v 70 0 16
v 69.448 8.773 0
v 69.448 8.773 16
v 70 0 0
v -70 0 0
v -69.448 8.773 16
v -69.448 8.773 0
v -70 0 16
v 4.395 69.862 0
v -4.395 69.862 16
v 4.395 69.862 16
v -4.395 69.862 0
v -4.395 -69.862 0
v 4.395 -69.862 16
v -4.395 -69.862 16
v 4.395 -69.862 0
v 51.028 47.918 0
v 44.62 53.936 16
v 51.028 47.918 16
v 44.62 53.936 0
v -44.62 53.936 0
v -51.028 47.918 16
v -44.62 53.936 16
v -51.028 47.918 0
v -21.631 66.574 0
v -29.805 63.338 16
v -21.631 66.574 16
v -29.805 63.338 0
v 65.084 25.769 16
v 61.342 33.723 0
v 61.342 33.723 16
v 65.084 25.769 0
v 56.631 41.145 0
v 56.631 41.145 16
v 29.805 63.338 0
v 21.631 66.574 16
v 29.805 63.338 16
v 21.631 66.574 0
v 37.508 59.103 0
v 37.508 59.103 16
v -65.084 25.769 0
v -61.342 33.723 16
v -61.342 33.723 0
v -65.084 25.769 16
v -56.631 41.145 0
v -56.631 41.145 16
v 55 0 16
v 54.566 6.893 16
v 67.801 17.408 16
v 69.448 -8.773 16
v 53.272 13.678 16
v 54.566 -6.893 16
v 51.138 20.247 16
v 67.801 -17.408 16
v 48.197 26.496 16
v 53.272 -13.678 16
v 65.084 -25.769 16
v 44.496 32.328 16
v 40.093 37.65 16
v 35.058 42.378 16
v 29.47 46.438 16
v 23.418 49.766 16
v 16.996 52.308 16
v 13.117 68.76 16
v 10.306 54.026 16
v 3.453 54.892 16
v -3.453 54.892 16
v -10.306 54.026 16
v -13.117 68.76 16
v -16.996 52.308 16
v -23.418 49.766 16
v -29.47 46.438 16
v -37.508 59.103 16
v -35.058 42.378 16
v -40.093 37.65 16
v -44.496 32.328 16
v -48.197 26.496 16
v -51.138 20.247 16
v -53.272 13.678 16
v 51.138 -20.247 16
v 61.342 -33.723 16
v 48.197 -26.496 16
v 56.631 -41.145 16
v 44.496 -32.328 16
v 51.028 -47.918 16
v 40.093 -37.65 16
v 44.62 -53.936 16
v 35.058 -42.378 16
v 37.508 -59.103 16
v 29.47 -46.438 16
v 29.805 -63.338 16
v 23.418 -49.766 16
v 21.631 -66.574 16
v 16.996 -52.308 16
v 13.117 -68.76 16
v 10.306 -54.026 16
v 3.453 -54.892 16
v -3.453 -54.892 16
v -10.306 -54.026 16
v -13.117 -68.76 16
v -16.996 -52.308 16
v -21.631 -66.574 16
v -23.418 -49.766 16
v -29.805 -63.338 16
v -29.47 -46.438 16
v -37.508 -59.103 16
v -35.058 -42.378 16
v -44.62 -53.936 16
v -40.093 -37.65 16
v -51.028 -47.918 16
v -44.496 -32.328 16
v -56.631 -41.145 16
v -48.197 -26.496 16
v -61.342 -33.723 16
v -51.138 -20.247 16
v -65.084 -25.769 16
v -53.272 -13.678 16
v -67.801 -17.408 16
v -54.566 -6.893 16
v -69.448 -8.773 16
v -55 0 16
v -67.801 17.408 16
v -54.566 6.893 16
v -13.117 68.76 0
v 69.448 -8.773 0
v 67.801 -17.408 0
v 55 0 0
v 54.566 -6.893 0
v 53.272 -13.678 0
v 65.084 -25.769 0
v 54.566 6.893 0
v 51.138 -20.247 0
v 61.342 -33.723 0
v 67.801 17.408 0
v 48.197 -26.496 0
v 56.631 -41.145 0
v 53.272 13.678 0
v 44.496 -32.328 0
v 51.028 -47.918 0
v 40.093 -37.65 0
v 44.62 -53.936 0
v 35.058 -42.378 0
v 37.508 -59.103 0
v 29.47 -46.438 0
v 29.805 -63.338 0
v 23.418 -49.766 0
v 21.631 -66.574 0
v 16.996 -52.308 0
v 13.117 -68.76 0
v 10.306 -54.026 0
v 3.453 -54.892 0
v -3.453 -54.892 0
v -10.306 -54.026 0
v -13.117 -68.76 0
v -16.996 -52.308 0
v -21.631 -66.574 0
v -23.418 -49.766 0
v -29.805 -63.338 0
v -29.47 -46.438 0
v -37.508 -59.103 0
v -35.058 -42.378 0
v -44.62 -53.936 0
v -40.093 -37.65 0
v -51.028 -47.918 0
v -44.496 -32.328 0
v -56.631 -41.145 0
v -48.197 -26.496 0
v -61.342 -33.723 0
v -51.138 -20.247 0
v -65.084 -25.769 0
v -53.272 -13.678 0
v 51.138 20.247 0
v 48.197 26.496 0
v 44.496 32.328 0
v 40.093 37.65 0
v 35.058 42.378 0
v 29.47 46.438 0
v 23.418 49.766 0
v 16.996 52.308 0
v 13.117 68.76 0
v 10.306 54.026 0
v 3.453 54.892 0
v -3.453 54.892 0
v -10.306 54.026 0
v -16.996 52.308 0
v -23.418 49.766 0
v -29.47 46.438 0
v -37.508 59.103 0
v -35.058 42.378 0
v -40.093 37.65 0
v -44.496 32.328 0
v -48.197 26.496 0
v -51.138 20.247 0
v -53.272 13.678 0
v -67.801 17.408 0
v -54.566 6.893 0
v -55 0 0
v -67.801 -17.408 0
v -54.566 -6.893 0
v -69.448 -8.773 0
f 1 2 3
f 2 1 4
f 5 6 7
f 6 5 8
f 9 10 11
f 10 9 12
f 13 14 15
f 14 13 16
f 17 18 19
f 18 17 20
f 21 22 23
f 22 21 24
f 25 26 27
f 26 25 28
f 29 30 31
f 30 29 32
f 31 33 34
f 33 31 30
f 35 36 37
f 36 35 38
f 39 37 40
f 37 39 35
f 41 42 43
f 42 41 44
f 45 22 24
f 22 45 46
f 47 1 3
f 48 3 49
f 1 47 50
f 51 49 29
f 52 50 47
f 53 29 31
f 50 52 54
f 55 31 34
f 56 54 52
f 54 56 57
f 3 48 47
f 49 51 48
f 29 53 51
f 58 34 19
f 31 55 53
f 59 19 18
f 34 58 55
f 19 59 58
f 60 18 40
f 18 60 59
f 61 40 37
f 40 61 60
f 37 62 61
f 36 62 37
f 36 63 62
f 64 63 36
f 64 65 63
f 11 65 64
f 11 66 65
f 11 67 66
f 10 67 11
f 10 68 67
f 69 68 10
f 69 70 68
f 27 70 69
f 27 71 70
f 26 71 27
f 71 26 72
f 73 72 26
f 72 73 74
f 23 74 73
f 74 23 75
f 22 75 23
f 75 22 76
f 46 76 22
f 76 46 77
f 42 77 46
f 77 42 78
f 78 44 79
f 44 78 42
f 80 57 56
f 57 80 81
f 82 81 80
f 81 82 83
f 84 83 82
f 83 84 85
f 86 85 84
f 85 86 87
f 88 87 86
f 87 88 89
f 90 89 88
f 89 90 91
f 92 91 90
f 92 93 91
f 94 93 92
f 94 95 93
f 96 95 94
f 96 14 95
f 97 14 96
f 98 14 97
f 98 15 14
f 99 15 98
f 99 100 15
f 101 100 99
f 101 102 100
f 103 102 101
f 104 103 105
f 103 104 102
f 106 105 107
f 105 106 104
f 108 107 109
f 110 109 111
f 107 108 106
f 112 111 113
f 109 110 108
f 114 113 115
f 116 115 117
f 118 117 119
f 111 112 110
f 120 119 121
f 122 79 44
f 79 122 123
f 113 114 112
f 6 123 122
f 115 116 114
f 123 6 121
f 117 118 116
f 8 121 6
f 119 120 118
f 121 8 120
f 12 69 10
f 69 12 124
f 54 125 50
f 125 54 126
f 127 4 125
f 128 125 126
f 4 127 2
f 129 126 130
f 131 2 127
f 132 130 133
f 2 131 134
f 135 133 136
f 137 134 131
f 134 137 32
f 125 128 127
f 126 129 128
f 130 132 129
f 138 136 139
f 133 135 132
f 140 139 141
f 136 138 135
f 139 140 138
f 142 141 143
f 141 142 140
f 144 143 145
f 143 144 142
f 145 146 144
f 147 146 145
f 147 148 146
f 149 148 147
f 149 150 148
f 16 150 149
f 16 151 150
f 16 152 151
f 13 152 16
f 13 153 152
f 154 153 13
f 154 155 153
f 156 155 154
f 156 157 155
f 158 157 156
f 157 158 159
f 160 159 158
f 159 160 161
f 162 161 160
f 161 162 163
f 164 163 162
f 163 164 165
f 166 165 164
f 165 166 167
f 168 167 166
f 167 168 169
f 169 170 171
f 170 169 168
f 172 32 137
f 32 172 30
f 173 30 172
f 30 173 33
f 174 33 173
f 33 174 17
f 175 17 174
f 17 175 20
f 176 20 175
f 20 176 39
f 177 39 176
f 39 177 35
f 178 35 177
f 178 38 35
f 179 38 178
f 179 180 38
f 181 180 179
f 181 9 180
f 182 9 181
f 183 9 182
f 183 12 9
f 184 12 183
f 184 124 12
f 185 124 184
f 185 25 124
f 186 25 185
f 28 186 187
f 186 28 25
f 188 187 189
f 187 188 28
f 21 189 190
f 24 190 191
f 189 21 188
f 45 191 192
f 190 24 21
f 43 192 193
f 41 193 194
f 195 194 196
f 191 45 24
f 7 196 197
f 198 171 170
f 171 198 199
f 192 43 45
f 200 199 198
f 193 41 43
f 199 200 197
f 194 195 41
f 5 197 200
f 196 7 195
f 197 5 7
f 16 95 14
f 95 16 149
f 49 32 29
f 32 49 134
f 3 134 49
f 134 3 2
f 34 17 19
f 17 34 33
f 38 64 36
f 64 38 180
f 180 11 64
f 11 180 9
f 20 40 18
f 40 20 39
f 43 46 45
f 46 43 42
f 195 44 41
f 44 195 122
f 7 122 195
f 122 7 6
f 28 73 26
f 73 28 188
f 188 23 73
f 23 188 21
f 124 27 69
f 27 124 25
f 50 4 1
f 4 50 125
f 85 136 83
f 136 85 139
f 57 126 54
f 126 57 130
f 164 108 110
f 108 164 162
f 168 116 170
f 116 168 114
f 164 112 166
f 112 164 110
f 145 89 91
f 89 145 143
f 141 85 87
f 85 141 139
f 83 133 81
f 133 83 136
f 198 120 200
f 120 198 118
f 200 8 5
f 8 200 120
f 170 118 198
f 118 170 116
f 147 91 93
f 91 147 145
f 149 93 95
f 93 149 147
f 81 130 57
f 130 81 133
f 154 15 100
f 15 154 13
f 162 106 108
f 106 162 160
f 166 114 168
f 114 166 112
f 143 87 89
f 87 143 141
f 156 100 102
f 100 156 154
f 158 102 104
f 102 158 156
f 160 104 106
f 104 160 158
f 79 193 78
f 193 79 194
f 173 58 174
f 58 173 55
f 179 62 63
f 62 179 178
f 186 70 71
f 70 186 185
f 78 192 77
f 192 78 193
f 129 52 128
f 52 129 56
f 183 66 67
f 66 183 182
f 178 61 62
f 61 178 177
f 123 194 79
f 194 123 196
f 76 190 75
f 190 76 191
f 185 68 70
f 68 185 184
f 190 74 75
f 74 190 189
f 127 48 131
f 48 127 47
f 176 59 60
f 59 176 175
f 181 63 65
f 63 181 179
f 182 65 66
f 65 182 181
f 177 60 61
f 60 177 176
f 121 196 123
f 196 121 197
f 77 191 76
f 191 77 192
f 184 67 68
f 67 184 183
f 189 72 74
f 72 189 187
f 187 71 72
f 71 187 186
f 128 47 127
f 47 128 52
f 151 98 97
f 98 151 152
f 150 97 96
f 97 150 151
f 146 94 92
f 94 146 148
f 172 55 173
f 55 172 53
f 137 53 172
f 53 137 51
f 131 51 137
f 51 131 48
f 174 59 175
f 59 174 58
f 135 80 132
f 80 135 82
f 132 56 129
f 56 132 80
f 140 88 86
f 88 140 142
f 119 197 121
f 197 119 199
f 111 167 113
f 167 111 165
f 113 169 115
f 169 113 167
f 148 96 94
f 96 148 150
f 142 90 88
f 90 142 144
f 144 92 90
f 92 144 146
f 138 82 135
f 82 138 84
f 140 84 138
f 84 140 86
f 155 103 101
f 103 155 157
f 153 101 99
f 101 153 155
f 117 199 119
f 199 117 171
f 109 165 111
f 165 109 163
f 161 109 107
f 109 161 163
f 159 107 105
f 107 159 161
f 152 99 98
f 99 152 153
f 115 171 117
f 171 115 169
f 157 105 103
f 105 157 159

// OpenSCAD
$fn = 50;


difference() {
	union() {
		cylinder(h = 16, r = 70.0000000000);
	}
	union() {
		cylinder(h = 16, r = 55.0000000000);
	}
}
